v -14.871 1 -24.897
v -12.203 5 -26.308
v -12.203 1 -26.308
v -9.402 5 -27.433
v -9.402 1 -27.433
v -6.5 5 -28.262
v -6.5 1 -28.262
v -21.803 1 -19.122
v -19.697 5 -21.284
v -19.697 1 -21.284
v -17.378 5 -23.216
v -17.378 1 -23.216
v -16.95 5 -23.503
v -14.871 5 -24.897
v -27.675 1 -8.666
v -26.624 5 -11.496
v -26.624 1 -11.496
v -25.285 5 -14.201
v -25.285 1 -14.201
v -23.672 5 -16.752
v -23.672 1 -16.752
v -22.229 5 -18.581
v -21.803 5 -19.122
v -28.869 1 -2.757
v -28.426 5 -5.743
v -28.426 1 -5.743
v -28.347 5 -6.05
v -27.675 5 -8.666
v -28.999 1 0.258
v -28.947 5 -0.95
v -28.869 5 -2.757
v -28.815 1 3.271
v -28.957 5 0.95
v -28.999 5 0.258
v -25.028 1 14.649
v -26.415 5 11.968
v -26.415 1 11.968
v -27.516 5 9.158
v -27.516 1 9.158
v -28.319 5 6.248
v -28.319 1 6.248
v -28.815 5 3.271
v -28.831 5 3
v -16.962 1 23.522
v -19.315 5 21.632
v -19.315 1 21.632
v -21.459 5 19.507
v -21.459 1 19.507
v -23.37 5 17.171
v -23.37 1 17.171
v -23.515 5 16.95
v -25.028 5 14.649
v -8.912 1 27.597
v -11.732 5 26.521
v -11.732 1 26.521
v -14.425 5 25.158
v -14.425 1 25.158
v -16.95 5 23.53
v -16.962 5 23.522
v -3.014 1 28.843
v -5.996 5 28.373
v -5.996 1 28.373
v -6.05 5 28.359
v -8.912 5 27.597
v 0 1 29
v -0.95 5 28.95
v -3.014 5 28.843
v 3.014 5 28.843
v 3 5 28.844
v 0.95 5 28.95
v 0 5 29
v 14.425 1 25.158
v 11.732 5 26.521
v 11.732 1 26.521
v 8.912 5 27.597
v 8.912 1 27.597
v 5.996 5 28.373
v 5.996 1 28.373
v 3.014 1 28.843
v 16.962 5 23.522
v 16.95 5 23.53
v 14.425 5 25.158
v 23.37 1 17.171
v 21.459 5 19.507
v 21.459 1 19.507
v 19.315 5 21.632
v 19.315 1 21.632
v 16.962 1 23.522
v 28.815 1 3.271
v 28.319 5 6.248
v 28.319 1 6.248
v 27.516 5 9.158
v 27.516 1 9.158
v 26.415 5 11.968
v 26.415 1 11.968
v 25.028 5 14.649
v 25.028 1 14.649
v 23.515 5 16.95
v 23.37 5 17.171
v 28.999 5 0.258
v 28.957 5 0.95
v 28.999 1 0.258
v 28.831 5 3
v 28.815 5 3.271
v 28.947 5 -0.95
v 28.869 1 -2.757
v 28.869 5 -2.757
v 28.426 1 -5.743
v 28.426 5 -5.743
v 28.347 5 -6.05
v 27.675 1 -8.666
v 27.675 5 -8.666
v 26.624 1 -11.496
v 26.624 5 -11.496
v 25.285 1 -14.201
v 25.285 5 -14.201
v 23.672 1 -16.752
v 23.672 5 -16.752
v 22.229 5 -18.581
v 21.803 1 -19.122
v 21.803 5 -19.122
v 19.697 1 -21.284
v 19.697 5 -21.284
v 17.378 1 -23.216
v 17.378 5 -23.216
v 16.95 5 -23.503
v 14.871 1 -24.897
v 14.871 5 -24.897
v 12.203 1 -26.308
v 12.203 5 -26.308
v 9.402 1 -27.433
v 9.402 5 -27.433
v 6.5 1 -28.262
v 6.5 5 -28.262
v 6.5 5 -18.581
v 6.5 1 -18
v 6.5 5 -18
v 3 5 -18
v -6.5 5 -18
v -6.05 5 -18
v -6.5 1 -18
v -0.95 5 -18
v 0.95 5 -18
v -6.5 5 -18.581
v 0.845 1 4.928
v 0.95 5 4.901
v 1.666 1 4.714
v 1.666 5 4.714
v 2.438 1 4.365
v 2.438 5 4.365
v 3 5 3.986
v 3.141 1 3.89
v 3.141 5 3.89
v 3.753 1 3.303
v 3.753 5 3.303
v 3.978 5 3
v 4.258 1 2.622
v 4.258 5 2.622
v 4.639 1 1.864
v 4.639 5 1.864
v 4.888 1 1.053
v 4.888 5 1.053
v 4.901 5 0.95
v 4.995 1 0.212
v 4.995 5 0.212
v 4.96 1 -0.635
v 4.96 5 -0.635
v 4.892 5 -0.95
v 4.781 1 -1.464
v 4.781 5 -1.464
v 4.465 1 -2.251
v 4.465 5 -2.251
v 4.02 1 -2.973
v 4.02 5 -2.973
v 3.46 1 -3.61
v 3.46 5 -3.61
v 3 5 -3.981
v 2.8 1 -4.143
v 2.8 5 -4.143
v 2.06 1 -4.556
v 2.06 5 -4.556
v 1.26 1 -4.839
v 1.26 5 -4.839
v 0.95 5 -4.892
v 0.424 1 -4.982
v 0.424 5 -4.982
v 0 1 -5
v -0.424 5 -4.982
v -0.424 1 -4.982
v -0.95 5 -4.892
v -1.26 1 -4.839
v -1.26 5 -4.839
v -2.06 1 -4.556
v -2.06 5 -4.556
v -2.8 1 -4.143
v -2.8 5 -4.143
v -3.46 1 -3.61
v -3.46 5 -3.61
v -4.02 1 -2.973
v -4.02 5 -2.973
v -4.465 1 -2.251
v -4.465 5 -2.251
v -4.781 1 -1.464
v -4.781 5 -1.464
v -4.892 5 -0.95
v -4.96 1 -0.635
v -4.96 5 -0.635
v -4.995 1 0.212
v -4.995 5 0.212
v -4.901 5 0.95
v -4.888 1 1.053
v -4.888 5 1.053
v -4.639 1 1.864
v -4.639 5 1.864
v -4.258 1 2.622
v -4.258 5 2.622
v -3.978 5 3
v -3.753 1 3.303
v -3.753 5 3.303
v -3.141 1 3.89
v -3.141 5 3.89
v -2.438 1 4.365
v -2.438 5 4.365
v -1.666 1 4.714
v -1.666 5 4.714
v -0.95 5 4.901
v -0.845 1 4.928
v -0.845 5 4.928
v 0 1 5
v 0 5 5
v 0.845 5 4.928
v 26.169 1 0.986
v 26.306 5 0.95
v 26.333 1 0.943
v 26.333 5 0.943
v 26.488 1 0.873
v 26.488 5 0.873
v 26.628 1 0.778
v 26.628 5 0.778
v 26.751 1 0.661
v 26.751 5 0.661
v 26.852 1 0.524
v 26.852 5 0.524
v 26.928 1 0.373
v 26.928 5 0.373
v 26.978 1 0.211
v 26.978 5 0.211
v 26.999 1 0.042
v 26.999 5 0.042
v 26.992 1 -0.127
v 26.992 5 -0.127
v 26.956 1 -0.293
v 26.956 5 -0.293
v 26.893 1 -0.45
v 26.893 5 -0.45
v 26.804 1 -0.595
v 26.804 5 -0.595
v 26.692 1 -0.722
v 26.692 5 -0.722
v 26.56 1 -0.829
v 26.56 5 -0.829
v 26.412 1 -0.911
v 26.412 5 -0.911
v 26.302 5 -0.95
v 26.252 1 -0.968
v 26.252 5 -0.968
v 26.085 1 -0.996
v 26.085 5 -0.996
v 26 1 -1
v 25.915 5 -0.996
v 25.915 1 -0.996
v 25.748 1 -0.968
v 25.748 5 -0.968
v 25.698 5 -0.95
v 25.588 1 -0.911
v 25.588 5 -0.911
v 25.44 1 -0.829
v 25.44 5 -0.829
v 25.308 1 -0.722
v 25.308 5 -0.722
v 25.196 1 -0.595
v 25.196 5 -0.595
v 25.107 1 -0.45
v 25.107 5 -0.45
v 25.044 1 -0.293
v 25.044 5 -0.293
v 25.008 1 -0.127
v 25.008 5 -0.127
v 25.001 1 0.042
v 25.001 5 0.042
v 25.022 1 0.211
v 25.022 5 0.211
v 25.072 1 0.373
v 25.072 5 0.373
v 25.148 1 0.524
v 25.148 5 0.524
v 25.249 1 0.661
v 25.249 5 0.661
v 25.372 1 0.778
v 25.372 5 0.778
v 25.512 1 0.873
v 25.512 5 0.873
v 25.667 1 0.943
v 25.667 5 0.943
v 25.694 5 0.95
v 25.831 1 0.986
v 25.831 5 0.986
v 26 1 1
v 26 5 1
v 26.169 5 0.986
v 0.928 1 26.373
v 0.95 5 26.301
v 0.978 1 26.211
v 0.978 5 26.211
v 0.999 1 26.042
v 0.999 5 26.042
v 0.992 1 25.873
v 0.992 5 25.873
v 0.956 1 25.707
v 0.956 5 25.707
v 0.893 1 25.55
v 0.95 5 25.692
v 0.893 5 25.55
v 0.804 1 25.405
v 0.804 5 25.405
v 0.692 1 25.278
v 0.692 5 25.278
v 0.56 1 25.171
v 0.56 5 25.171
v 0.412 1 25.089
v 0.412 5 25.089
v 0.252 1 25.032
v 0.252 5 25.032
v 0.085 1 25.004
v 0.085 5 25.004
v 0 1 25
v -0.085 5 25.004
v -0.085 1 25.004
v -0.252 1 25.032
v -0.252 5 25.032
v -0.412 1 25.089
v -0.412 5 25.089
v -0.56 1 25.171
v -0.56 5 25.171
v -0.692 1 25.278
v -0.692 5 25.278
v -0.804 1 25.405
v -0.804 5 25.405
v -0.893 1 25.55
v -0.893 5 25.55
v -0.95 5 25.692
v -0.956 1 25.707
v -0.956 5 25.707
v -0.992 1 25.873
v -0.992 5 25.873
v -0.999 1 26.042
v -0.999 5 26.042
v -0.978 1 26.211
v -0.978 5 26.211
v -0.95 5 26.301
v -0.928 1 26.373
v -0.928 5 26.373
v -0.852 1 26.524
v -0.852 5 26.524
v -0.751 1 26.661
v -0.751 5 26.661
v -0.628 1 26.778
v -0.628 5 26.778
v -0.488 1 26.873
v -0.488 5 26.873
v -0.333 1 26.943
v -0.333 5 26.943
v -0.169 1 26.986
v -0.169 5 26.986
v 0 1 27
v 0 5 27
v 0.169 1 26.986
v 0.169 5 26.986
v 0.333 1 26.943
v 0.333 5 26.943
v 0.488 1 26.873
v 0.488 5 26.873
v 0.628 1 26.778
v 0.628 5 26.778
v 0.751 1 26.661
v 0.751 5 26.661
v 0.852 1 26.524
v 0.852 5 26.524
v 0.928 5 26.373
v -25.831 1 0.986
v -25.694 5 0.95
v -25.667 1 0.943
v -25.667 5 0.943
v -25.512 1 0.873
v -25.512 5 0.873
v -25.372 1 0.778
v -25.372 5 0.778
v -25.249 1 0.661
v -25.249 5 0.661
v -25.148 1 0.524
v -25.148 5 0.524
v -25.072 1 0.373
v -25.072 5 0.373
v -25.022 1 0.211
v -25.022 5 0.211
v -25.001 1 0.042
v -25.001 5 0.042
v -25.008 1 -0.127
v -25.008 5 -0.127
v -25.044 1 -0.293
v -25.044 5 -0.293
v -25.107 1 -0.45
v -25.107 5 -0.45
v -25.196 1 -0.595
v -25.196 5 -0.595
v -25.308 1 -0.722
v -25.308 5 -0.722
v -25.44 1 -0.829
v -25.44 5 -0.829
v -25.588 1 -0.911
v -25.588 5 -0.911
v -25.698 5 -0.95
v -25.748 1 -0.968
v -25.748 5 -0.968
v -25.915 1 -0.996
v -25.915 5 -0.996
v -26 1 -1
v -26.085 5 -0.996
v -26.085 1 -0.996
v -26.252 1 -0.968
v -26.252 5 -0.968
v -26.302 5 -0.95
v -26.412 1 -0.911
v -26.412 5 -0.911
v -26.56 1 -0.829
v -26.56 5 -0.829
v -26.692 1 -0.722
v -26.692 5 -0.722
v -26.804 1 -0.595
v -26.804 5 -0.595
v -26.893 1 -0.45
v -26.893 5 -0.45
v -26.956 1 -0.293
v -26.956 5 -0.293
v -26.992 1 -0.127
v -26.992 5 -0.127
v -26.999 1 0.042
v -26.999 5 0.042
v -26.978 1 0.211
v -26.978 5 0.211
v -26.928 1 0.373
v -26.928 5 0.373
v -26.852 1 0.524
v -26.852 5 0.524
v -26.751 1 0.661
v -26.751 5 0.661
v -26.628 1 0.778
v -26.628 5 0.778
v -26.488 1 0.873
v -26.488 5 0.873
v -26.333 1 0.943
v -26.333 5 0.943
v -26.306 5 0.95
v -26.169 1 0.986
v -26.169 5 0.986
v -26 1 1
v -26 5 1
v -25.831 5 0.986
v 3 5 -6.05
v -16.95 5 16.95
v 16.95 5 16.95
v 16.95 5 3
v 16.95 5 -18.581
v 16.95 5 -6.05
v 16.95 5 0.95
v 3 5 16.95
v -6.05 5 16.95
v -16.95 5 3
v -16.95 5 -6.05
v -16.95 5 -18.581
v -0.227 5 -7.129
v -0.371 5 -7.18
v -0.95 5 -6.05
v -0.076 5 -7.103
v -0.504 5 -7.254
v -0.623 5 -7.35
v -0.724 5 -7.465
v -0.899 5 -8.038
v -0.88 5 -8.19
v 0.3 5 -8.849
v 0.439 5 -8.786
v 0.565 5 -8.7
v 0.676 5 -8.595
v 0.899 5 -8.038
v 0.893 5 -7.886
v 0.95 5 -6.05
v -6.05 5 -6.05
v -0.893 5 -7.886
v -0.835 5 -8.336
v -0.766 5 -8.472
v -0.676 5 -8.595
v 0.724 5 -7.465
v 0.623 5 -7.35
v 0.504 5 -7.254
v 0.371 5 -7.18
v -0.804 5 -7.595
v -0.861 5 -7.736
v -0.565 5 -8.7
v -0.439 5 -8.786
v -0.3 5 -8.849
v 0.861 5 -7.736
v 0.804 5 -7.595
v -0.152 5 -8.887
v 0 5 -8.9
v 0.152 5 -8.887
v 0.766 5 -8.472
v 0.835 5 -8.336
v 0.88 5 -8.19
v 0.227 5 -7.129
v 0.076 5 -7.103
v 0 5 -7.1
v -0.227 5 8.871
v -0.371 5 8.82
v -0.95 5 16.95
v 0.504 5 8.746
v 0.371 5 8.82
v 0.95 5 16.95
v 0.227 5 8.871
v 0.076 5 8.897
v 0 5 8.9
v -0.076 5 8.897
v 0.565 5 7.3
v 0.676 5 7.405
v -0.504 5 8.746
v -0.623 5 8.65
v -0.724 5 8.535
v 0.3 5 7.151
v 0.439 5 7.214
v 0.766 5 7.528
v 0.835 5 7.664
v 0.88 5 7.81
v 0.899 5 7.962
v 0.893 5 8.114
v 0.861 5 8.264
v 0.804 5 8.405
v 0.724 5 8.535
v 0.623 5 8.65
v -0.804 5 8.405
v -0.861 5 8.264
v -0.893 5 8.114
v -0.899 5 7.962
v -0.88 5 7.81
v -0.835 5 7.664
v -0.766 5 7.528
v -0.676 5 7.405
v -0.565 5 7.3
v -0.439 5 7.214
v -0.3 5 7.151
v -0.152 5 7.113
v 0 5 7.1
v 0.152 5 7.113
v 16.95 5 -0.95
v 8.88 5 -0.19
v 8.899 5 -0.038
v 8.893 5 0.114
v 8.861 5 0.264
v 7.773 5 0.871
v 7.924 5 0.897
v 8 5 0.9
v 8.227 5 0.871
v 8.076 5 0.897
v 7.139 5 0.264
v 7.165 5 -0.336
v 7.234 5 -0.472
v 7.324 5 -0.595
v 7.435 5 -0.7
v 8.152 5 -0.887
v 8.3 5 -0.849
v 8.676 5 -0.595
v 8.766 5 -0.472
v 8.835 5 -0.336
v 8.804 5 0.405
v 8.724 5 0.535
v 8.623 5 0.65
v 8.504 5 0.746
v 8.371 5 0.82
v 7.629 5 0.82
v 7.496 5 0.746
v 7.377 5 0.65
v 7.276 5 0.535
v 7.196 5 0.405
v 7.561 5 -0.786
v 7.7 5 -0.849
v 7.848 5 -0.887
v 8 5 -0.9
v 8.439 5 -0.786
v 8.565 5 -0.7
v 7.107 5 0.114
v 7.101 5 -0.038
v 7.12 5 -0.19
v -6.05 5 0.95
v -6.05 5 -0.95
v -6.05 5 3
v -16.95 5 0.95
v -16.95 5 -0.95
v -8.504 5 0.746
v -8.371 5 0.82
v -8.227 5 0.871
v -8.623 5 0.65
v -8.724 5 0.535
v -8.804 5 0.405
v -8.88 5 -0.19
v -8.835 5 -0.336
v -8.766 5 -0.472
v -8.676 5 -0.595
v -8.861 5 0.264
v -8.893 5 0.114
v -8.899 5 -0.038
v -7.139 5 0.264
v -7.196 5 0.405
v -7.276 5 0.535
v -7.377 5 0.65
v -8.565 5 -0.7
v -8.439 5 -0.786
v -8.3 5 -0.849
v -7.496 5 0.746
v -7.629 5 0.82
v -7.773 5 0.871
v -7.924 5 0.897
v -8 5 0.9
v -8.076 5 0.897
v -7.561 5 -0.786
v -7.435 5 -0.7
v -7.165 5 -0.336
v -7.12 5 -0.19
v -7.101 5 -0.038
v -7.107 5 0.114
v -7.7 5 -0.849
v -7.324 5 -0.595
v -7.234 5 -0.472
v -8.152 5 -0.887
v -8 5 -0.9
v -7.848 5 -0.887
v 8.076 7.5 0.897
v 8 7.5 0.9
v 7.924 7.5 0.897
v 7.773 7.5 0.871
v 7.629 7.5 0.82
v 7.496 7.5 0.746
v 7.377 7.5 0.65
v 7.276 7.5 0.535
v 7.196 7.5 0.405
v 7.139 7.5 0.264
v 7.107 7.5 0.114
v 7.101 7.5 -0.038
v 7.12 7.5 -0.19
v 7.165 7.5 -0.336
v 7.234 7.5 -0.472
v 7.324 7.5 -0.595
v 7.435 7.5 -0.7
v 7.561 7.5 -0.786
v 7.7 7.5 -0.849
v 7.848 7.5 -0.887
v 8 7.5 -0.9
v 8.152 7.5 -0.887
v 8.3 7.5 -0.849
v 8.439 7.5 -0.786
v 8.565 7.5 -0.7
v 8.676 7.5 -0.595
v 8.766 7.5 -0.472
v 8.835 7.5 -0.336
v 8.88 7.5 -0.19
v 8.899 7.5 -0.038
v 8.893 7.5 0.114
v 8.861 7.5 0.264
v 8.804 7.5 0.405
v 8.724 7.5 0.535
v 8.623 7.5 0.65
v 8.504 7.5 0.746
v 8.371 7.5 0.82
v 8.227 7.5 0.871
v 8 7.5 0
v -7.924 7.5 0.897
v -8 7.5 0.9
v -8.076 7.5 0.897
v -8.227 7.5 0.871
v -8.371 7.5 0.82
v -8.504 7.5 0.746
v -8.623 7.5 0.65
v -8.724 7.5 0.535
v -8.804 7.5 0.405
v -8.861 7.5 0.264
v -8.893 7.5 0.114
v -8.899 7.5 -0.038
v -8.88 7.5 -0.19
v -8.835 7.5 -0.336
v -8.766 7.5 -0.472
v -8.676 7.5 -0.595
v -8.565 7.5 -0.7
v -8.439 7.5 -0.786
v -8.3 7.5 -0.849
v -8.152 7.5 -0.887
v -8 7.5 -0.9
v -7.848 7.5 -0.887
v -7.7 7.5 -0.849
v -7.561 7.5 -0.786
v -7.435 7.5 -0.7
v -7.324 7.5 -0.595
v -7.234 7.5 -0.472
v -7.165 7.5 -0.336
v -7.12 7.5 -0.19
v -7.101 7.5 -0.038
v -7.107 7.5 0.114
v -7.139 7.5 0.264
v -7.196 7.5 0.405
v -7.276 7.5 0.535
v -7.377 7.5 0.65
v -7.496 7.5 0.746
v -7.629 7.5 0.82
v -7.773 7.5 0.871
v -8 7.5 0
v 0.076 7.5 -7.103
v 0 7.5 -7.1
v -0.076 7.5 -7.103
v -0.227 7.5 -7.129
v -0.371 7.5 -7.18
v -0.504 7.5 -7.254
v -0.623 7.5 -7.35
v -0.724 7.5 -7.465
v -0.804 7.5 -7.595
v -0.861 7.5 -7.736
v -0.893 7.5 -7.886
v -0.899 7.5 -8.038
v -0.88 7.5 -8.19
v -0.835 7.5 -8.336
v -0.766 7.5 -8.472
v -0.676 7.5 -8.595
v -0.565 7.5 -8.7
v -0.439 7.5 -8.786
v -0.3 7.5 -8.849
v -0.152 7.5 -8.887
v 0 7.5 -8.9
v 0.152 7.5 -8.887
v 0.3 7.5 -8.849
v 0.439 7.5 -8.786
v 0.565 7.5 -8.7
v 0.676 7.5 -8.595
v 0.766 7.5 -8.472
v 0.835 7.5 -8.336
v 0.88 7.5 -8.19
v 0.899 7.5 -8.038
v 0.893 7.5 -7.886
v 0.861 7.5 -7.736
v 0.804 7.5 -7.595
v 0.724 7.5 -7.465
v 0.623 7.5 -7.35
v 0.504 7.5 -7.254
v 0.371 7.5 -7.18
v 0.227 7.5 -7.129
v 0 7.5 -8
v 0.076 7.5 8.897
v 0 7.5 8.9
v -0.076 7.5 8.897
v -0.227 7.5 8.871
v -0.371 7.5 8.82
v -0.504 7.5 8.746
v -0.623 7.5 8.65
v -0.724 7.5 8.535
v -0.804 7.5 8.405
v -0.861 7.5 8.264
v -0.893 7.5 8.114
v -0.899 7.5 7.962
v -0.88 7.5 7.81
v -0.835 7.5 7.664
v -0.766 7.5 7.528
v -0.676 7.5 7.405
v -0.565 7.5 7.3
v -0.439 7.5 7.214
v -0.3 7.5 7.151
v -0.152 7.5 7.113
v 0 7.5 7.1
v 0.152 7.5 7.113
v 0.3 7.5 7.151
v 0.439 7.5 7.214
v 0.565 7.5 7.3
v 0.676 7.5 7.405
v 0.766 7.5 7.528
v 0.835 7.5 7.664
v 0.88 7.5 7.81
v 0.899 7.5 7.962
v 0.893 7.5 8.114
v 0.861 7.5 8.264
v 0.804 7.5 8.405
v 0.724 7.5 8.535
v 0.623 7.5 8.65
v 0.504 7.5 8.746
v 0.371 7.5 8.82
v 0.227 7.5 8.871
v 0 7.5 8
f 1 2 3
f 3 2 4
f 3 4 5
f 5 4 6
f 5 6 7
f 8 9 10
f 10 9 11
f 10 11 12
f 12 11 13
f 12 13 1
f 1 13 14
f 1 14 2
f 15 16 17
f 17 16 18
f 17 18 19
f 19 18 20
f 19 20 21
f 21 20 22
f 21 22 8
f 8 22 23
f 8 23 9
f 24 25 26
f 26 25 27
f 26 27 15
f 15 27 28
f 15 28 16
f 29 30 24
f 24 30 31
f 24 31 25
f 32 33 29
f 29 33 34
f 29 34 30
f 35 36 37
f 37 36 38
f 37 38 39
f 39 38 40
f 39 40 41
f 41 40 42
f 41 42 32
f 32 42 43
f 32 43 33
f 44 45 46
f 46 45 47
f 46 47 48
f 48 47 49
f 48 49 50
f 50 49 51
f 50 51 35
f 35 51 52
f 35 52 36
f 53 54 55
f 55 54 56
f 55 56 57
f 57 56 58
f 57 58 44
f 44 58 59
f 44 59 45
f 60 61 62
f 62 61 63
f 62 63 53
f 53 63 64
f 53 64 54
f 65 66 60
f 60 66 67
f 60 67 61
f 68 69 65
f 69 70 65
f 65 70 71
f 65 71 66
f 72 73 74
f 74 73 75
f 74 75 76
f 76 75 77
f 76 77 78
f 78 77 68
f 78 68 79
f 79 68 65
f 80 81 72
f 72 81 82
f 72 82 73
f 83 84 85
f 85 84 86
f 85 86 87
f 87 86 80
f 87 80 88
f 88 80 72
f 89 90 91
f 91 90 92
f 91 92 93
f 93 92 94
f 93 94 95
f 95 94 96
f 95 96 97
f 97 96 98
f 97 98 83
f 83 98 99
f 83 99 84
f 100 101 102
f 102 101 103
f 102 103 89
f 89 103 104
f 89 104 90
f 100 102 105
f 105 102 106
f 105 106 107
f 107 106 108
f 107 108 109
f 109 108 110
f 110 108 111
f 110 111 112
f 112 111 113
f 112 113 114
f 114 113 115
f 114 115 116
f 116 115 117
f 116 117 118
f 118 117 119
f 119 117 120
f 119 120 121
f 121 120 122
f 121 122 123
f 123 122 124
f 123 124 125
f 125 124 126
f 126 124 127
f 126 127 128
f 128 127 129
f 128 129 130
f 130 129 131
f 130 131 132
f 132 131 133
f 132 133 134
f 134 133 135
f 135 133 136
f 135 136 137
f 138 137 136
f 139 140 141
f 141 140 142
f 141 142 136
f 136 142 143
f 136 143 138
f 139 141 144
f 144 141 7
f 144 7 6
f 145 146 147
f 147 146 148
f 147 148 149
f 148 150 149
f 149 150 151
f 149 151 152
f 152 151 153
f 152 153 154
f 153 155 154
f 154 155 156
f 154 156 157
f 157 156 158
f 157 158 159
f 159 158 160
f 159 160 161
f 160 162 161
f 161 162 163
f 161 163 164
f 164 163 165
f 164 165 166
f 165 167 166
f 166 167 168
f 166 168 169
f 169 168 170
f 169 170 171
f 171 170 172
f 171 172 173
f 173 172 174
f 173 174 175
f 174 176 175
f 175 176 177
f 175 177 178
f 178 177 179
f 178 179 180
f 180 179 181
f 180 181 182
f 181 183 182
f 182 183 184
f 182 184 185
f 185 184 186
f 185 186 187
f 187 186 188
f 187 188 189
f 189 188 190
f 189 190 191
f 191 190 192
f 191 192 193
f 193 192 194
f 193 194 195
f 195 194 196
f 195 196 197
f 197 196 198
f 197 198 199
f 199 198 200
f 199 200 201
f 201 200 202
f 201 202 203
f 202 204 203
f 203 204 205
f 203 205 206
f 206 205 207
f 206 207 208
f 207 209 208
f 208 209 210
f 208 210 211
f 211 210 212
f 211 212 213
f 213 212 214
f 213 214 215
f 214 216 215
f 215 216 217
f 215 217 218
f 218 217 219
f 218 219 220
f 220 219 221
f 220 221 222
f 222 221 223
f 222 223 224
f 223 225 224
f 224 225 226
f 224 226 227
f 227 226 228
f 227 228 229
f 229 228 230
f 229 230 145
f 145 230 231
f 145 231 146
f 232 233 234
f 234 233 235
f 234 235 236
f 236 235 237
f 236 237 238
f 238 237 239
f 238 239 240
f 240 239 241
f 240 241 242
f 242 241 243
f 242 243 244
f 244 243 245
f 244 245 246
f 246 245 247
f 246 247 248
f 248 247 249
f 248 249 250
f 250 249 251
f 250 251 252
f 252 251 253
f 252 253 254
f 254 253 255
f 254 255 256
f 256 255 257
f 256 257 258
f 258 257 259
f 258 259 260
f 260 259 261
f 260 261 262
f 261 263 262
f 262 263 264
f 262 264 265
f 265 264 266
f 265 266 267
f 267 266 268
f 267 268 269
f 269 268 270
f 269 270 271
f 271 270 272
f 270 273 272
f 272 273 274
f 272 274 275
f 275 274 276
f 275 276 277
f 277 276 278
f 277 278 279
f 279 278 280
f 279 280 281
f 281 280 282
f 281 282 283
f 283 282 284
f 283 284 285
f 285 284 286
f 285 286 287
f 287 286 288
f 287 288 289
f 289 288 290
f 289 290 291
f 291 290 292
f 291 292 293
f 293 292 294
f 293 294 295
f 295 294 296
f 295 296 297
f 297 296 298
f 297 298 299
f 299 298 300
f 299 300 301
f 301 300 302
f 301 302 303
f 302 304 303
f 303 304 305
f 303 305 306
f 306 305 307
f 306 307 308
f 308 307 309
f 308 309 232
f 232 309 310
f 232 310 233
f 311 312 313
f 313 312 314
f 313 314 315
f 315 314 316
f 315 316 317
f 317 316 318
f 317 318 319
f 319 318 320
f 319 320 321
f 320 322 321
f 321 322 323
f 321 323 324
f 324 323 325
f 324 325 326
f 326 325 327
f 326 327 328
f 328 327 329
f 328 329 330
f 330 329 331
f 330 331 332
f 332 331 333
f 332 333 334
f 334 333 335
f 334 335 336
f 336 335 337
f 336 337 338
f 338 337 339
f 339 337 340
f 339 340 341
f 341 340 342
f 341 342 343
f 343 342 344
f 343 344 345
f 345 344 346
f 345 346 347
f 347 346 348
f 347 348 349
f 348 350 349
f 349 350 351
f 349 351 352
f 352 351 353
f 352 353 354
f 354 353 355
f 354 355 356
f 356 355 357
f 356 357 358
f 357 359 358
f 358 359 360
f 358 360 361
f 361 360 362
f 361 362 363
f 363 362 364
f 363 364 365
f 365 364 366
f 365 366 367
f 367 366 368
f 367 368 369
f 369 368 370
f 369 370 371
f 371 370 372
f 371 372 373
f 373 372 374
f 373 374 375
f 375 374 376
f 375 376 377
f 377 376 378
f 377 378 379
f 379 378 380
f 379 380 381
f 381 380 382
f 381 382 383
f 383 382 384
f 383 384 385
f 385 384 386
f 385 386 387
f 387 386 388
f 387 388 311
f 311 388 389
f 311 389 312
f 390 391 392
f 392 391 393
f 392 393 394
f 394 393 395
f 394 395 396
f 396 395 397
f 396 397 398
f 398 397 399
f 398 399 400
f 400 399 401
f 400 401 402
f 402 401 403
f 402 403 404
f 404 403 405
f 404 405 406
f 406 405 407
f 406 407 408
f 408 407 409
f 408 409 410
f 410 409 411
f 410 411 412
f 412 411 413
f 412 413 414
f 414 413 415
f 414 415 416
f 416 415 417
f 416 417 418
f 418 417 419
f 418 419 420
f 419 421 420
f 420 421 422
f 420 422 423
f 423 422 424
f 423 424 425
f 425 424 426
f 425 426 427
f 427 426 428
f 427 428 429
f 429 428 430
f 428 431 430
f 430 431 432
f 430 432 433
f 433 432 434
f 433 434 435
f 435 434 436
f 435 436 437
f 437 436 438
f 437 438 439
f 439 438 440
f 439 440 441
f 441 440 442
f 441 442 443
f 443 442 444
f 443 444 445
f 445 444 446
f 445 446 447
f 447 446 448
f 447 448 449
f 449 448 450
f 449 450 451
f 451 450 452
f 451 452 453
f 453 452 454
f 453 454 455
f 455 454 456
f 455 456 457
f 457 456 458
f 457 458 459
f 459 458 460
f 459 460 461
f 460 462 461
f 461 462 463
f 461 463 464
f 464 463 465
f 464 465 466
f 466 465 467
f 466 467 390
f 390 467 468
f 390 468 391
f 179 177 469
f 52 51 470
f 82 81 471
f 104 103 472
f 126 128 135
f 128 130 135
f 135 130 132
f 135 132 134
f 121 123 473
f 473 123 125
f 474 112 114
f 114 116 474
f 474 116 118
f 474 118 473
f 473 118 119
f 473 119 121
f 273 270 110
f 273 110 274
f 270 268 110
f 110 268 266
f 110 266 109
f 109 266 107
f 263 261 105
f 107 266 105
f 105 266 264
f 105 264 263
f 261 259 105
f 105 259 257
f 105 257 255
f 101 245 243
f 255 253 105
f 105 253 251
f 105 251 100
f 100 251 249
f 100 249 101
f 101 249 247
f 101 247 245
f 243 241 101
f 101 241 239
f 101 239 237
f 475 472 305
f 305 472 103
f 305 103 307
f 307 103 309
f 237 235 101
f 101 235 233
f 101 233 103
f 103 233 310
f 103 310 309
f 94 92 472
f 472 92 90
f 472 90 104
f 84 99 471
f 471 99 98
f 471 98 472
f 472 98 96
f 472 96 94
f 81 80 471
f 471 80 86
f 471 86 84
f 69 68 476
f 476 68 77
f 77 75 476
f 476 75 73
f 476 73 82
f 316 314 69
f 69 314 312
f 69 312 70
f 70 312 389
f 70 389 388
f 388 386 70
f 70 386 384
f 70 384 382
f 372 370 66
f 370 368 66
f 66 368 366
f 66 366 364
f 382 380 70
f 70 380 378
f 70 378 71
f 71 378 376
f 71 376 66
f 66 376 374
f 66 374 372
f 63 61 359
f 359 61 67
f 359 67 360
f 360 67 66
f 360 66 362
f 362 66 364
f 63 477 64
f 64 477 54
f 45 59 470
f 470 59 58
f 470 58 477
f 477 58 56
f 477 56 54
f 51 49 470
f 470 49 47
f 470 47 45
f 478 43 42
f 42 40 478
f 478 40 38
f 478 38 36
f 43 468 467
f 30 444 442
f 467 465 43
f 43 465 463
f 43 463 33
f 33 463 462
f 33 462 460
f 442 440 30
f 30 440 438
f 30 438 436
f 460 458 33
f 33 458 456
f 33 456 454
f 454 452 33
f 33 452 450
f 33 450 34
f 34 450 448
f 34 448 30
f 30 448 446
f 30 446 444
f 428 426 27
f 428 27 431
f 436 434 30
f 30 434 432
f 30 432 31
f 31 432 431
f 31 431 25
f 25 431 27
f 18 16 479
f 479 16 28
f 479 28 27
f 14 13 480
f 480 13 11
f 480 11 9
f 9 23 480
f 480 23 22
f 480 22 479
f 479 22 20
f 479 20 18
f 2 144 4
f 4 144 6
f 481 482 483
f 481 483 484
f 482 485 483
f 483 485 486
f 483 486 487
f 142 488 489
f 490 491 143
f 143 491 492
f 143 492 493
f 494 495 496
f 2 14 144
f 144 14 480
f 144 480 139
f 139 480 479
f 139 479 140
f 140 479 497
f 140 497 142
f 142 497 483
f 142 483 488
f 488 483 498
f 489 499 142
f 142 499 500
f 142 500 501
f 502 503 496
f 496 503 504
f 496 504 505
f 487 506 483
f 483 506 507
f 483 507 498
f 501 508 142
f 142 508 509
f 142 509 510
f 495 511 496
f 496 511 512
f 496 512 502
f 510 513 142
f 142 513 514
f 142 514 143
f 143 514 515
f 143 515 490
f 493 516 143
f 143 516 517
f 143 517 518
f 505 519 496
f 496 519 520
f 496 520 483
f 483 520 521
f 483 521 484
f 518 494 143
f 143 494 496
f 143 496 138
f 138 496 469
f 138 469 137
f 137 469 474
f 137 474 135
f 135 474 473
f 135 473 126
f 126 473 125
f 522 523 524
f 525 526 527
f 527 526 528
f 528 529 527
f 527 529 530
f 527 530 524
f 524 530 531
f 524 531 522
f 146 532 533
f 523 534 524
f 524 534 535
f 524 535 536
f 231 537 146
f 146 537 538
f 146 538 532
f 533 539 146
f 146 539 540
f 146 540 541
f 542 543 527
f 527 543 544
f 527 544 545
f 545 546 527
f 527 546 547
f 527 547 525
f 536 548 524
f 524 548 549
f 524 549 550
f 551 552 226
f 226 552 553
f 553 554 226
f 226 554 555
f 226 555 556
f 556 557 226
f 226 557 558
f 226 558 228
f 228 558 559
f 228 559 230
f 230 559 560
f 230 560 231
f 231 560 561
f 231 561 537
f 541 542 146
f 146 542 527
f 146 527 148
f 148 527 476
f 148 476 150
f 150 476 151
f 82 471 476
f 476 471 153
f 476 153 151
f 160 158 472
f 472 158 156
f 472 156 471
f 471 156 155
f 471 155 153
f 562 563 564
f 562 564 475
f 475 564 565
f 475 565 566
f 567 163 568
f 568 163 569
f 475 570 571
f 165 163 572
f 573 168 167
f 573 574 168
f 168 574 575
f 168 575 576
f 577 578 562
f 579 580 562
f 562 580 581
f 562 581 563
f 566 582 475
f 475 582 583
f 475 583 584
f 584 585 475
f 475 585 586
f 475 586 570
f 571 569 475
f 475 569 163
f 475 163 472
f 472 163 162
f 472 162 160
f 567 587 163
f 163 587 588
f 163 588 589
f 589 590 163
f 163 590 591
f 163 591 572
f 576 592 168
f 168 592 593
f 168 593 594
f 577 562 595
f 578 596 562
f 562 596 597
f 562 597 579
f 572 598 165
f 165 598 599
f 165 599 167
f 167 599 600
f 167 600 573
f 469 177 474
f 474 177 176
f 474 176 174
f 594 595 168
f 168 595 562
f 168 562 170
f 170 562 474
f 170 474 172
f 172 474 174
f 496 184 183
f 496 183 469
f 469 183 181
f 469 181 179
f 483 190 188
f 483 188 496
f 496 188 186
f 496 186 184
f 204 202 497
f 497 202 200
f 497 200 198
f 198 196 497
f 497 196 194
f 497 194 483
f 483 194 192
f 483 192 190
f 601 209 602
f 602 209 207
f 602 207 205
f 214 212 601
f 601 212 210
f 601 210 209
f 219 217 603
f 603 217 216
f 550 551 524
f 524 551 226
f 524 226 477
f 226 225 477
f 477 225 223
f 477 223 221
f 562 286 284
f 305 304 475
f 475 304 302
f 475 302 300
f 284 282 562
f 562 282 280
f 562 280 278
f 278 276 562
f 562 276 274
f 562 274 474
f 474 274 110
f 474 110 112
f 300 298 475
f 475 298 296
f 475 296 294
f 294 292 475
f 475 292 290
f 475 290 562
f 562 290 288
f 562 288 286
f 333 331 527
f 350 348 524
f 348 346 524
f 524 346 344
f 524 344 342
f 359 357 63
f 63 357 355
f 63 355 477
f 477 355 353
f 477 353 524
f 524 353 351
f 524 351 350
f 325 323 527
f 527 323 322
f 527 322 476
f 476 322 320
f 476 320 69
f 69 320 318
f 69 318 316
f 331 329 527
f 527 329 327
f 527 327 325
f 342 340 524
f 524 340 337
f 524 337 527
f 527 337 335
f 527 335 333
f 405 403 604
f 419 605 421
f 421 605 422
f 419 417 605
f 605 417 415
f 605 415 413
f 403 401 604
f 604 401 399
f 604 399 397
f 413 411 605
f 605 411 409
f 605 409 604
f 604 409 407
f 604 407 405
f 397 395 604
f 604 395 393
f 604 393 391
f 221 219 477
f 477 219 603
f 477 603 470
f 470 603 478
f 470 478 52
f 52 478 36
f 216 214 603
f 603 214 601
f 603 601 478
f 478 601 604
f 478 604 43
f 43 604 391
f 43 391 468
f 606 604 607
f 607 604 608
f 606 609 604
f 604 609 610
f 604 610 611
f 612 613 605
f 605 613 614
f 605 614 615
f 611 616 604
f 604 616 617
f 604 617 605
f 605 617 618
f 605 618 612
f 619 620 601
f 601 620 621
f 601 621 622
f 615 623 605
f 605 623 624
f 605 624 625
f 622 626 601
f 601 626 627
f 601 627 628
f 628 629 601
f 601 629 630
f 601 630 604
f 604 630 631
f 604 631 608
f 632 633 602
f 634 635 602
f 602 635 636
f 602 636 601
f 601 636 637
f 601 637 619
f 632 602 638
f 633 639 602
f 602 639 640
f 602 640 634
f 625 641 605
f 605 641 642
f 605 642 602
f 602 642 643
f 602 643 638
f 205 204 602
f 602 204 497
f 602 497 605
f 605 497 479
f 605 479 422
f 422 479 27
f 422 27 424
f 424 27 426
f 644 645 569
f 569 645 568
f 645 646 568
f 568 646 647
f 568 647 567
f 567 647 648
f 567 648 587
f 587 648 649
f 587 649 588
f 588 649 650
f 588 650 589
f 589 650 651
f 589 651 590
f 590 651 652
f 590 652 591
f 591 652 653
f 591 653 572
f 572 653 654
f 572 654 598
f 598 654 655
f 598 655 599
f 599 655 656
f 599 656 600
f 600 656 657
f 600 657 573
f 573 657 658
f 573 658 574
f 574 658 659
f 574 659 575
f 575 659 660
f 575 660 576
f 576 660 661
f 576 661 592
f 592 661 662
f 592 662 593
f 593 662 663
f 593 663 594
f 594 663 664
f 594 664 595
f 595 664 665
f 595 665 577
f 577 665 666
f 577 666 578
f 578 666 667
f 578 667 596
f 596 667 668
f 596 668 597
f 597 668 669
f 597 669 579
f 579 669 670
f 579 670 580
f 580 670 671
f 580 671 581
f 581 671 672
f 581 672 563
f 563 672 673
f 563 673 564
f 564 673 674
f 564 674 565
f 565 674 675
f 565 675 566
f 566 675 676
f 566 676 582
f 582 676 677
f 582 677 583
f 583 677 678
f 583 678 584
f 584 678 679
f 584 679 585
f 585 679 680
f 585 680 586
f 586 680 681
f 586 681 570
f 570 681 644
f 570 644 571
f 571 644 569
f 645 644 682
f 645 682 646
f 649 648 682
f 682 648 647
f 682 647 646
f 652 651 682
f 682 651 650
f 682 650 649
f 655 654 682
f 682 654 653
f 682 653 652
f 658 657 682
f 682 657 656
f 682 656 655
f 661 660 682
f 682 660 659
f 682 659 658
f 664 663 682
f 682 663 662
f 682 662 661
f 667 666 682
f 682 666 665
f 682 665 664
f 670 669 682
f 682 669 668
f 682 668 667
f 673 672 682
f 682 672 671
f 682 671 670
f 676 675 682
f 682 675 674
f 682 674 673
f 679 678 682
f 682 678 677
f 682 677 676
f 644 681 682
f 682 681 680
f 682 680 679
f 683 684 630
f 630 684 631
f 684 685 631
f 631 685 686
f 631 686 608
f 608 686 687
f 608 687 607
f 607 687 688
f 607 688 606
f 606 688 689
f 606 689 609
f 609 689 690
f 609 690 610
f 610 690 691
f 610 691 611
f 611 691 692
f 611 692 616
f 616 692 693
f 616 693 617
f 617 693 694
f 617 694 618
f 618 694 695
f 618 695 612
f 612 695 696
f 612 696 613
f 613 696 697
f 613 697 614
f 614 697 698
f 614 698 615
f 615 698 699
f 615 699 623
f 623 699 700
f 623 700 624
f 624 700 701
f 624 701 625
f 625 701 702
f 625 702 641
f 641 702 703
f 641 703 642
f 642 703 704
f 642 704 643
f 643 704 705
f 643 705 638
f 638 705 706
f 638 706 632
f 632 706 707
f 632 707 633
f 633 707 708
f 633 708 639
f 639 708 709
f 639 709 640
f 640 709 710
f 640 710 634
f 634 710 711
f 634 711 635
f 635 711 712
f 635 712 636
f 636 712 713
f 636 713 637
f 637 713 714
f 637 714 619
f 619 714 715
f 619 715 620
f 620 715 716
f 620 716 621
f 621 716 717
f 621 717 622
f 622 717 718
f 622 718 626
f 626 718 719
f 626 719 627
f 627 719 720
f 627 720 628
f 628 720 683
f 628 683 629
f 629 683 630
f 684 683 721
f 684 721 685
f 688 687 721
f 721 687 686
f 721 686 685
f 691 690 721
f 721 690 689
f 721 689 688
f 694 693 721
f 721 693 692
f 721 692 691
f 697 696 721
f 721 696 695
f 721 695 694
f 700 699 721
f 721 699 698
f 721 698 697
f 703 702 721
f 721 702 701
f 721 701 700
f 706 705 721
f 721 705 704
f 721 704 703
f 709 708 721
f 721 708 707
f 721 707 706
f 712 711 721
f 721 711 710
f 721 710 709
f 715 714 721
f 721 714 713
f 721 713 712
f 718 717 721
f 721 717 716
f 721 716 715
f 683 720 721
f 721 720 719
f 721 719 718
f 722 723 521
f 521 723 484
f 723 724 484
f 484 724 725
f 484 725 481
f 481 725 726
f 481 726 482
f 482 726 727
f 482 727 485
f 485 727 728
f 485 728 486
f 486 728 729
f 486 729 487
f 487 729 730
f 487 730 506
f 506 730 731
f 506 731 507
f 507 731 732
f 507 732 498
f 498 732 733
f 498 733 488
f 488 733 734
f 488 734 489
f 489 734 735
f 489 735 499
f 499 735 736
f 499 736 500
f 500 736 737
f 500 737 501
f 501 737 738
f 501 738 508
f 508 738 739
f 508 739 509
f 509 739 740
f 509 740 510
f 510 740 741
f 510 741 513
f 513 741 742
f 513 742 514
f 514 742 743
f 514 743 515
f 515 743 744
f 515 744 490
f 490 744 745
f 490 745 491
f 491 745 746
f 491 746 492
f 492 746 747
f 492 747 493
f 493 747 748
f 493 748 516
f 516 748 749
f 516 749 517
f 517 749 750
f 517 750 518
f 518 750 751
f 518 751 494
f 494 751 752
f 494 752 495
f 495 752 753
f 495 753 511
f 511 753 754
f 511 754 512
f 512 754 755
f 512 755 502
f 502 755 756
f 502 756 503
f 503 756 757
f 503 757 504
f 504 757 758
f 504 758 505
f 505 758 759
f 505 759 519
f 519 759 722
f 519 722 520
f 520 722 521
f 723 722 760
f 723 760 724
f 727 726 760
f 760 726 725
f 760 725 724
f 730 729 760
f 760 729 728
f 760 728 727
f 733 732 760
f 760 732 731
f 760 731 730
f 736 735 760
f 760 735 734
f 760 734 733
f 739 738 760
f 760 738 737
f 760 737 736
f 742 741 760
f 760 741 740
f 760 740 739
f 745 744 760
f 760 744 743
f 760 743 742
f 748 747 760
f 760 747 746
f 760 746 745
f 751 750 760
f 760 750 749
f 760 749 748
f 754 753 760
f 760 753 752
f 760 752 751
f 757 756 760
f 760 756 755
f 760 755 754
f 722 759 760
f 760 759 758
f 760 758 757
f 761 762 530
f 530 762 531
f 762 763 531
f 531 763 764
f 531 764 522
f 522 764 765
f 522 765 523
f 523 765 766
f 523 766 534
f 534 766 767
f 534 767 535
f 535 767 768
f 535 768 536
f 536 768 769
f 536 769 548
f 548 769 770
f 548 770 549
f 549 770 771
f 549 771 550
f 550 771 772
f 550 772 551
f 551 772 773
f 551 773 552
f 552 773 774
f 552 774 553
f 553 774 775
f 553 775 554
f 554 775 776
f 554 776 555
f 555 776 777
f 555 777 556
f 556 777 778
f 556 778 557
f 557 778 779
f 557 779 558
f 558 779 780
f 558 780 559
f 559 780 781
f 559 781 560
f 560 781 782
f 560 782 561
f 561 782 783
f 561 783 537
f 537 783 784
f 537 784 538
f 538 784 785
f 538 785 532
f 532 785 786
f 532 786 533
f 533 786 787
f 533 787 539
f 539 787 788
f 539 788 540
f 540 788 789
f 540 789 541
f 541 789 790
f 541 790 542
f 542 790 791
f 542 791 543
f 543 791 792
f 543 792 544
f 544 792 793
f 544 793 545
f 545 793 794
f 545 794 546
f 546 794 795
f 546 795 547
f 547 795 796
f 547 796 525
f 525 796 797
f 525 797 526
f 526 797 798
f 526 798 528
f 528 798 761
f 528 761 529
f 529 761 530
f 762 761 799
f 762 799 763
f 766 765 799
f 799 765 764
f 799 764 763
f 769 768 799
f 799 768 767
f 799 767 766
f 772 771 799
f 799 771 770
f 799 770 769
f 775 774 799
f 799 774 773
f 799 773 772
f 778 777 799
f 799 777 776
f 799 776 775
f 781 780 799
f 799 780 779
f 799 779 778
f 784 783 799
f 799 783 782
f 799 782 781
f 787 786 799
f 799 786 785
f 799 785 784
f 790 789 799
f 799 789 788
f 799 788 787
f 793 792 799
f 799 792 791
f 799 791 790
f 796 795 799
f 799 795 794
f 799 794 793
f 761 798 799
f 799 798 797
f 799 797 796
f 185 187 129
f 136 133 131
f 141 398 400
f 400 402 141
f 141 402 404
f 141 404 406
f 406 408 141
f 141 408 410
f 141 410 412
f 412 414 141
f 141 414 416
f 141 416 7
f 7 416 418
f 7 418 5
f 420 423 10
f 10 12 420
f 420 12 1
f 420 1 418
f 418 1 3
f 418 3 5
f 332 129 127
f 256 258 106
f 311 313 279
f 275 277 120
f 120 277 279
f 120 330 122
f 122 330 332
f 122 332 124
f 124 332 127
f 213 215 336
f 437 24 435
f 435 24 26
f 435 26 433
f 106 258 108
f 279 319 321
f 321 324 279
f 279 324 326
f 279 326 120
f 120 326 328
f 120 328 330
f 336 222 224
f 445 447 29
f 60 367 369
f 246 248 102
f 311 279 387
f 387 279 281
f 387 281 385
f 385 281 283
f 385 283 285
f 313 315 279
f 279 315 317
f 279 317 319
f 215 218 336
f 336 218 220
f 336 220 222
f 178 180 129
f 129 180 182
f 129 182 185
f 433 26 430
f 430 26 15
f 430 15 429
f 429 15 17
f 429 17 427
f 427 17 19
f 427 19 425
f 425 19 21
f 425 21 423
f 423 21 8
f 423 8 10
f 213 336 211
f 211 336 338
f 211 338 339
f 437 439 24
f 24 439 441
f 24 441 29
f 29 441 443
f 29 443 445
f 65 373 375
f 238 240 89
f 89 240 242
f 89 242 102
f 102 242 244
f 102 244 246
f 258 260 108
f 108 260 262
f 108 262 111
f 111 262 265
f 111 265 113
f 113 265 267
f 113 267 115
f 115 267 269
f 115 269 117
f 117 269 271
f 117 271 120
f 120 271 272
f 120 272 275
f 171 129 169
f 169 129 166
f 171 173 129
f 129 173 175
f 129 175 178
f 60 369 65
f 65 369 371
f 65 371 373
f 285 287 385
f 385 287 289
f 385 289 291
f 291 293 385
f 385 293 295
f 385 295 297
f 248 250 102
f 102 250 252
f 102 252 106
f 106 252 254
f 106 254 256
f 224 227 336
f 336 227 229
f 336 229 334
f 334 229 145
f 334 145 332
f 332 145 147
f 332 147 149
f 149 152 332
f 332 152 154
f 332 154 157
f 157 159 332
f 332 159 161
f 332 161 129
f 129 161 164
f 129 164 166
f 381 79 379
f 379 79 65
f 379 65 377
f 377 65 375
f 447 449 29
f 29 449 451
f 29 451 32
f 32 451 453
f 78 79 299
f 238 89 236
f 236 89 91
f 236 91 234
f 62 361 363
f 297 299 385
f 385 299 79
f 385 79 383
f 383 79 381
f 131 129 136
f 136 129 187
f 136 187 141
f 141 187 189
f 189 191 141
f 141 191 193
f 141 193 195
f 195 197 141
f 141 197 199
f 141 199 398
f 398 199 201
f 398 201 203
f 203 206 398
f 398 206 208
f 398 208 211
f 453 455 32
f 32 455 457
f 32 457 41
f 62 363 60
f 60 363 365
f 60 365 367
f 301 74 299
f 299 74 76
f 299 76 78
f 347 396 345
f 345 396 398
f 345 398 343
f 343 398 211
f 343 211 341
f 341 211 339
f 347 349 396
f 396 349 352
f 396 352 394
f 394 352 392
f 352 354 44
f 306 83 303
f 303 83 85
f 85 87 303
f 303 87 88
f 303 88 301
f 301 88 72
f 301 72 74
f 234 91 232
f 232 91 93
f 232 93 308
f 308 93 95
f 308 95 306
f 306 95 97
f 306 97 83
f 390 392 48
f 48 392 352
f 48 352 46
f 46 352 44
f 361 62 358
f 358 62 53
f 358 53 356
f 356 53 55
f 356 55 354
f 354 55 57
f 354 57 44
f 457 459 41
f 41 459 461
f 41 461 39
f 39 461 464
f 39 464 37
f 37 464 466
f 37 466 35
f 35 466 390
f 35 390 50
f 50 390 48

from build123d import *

# Parameters (mm, degrees)
SKETCH1_R           = 29
BOSS_EXTRUDE1_DEPTH = 5
SKETCH3_W           = 13
SKETCH3_H           = 11
CUT_EXTRUDE1_DEPTH  = 10
SKETCH4_R           = 0.9
BOSS_EXTRUDE2_DEPTH = 2.5
SKETCH7_R           = 5
CUT_EXTRUDE4_DEPTH  = 5
SKETCH11_R          = 1
CUT_EXTRUDE6_DEPTH  = 5
SKETCH12_R          = 29
CUT_EXTRUDE7_DEPTH  = 1


with BuildPart() as part:
    # Sketch1 → Boss-Extrude1 (new body)
    with BuildSketch(Plane(origin=(0, 0, 0), x_dir=(1, 0, 0), z_dir=(0, 1, 0))):
        with Locations(Location((0, 0, 0), (0, 0, 270))):
            Circle(SKETCH1_R)
    extrude(amount=BOSS_EXTRUDE1_DEPTH)

    # Sketch3 → Cut-Extrude1 (cut)
    with BuildSketch(Plane(origin=(0, 5, 0), x_dir=(1, 0, 0), z_dir=(0, 1, 0))):
        with Locations((0, 23.5)):
            Rectangle(SKETCH3_W, SKETCH3_H)
    extrude(amount=-CUT_EXTRUDE1_DEPTH, mode=Mode.SUBTRACT)

    # Sketch4 → Boss-Extrude2 (add)
    with BuildSketch(Plane(origin=(0, 5, 0), x_dir=(1, 0, 0), z_dir=(0, 1, 0))):
        with Locations(Location((8, 0, 0), (0, 0, 270))):
            Circle(SKETCH4_R)
        with Locations(Location((-8, 0, 0), (0, 0, 270))):
            Circle(SKETCH4_R)
        with Locations(Location((0, 8, 0), (0, 0, 270))):
            Circle(SKETCH4_R)
        with Locations(Location((0, -8, 0), (0, 0, 270))):
            Circle(SKETCH4_R)
    extrude(amount=BOSS_EXTRUDE2_DEPTH)

    # Sketch7 → Cut-Extrude4 (cut)
    with BuildSketch(Plane(origin=(0, 5, 0), x_dir=(1, 0, 0), z_dir=(0, 1, 0))):
        with Locations(Location((0, 0, 0), (0, 0, 270))):
            Circle(SKETCH7_R)
    extrude(amount=-CUT_EXTRUDE4_DEPTH, mode=Mode.SUBTRACT)

    # Sketch11 → Cut-Extrude6 (cut)
    with BuildSketch(Plane(origin=(0, 5, 0), x_dir=(1, 0, 0), z_dir=(0, 1, 0))):
        with Locations(Location((-26, 0, 0), (0, 0, 270))):
            Circle(SKETCH11_R)
        with Locations(Location((0, -26, 0), (0, 0, 270))):
            Circle(SKETCH11_R)
        with Locations(Location((26, 0, 0), (0, 0, 270))):
            Circle(SKETCH11_R)
    extrude(amount=-CUT_EXTRUDE6_DEPTH, mode=Mode.SUBTRACT)

    # Sketch12 → Cut-Extrude7 (cut)
    with BuildSketch(Plane(origin=(0, 0, 0), x_dir=(-1, 0, 0), z_dir=(0, -1, 0))):
        Circle(SKETCH12_R)
    extrude(amount=-CUT_EXTRUDE7_DEPTH, mode=Mode.SUBTRACT)


solid = part.part
